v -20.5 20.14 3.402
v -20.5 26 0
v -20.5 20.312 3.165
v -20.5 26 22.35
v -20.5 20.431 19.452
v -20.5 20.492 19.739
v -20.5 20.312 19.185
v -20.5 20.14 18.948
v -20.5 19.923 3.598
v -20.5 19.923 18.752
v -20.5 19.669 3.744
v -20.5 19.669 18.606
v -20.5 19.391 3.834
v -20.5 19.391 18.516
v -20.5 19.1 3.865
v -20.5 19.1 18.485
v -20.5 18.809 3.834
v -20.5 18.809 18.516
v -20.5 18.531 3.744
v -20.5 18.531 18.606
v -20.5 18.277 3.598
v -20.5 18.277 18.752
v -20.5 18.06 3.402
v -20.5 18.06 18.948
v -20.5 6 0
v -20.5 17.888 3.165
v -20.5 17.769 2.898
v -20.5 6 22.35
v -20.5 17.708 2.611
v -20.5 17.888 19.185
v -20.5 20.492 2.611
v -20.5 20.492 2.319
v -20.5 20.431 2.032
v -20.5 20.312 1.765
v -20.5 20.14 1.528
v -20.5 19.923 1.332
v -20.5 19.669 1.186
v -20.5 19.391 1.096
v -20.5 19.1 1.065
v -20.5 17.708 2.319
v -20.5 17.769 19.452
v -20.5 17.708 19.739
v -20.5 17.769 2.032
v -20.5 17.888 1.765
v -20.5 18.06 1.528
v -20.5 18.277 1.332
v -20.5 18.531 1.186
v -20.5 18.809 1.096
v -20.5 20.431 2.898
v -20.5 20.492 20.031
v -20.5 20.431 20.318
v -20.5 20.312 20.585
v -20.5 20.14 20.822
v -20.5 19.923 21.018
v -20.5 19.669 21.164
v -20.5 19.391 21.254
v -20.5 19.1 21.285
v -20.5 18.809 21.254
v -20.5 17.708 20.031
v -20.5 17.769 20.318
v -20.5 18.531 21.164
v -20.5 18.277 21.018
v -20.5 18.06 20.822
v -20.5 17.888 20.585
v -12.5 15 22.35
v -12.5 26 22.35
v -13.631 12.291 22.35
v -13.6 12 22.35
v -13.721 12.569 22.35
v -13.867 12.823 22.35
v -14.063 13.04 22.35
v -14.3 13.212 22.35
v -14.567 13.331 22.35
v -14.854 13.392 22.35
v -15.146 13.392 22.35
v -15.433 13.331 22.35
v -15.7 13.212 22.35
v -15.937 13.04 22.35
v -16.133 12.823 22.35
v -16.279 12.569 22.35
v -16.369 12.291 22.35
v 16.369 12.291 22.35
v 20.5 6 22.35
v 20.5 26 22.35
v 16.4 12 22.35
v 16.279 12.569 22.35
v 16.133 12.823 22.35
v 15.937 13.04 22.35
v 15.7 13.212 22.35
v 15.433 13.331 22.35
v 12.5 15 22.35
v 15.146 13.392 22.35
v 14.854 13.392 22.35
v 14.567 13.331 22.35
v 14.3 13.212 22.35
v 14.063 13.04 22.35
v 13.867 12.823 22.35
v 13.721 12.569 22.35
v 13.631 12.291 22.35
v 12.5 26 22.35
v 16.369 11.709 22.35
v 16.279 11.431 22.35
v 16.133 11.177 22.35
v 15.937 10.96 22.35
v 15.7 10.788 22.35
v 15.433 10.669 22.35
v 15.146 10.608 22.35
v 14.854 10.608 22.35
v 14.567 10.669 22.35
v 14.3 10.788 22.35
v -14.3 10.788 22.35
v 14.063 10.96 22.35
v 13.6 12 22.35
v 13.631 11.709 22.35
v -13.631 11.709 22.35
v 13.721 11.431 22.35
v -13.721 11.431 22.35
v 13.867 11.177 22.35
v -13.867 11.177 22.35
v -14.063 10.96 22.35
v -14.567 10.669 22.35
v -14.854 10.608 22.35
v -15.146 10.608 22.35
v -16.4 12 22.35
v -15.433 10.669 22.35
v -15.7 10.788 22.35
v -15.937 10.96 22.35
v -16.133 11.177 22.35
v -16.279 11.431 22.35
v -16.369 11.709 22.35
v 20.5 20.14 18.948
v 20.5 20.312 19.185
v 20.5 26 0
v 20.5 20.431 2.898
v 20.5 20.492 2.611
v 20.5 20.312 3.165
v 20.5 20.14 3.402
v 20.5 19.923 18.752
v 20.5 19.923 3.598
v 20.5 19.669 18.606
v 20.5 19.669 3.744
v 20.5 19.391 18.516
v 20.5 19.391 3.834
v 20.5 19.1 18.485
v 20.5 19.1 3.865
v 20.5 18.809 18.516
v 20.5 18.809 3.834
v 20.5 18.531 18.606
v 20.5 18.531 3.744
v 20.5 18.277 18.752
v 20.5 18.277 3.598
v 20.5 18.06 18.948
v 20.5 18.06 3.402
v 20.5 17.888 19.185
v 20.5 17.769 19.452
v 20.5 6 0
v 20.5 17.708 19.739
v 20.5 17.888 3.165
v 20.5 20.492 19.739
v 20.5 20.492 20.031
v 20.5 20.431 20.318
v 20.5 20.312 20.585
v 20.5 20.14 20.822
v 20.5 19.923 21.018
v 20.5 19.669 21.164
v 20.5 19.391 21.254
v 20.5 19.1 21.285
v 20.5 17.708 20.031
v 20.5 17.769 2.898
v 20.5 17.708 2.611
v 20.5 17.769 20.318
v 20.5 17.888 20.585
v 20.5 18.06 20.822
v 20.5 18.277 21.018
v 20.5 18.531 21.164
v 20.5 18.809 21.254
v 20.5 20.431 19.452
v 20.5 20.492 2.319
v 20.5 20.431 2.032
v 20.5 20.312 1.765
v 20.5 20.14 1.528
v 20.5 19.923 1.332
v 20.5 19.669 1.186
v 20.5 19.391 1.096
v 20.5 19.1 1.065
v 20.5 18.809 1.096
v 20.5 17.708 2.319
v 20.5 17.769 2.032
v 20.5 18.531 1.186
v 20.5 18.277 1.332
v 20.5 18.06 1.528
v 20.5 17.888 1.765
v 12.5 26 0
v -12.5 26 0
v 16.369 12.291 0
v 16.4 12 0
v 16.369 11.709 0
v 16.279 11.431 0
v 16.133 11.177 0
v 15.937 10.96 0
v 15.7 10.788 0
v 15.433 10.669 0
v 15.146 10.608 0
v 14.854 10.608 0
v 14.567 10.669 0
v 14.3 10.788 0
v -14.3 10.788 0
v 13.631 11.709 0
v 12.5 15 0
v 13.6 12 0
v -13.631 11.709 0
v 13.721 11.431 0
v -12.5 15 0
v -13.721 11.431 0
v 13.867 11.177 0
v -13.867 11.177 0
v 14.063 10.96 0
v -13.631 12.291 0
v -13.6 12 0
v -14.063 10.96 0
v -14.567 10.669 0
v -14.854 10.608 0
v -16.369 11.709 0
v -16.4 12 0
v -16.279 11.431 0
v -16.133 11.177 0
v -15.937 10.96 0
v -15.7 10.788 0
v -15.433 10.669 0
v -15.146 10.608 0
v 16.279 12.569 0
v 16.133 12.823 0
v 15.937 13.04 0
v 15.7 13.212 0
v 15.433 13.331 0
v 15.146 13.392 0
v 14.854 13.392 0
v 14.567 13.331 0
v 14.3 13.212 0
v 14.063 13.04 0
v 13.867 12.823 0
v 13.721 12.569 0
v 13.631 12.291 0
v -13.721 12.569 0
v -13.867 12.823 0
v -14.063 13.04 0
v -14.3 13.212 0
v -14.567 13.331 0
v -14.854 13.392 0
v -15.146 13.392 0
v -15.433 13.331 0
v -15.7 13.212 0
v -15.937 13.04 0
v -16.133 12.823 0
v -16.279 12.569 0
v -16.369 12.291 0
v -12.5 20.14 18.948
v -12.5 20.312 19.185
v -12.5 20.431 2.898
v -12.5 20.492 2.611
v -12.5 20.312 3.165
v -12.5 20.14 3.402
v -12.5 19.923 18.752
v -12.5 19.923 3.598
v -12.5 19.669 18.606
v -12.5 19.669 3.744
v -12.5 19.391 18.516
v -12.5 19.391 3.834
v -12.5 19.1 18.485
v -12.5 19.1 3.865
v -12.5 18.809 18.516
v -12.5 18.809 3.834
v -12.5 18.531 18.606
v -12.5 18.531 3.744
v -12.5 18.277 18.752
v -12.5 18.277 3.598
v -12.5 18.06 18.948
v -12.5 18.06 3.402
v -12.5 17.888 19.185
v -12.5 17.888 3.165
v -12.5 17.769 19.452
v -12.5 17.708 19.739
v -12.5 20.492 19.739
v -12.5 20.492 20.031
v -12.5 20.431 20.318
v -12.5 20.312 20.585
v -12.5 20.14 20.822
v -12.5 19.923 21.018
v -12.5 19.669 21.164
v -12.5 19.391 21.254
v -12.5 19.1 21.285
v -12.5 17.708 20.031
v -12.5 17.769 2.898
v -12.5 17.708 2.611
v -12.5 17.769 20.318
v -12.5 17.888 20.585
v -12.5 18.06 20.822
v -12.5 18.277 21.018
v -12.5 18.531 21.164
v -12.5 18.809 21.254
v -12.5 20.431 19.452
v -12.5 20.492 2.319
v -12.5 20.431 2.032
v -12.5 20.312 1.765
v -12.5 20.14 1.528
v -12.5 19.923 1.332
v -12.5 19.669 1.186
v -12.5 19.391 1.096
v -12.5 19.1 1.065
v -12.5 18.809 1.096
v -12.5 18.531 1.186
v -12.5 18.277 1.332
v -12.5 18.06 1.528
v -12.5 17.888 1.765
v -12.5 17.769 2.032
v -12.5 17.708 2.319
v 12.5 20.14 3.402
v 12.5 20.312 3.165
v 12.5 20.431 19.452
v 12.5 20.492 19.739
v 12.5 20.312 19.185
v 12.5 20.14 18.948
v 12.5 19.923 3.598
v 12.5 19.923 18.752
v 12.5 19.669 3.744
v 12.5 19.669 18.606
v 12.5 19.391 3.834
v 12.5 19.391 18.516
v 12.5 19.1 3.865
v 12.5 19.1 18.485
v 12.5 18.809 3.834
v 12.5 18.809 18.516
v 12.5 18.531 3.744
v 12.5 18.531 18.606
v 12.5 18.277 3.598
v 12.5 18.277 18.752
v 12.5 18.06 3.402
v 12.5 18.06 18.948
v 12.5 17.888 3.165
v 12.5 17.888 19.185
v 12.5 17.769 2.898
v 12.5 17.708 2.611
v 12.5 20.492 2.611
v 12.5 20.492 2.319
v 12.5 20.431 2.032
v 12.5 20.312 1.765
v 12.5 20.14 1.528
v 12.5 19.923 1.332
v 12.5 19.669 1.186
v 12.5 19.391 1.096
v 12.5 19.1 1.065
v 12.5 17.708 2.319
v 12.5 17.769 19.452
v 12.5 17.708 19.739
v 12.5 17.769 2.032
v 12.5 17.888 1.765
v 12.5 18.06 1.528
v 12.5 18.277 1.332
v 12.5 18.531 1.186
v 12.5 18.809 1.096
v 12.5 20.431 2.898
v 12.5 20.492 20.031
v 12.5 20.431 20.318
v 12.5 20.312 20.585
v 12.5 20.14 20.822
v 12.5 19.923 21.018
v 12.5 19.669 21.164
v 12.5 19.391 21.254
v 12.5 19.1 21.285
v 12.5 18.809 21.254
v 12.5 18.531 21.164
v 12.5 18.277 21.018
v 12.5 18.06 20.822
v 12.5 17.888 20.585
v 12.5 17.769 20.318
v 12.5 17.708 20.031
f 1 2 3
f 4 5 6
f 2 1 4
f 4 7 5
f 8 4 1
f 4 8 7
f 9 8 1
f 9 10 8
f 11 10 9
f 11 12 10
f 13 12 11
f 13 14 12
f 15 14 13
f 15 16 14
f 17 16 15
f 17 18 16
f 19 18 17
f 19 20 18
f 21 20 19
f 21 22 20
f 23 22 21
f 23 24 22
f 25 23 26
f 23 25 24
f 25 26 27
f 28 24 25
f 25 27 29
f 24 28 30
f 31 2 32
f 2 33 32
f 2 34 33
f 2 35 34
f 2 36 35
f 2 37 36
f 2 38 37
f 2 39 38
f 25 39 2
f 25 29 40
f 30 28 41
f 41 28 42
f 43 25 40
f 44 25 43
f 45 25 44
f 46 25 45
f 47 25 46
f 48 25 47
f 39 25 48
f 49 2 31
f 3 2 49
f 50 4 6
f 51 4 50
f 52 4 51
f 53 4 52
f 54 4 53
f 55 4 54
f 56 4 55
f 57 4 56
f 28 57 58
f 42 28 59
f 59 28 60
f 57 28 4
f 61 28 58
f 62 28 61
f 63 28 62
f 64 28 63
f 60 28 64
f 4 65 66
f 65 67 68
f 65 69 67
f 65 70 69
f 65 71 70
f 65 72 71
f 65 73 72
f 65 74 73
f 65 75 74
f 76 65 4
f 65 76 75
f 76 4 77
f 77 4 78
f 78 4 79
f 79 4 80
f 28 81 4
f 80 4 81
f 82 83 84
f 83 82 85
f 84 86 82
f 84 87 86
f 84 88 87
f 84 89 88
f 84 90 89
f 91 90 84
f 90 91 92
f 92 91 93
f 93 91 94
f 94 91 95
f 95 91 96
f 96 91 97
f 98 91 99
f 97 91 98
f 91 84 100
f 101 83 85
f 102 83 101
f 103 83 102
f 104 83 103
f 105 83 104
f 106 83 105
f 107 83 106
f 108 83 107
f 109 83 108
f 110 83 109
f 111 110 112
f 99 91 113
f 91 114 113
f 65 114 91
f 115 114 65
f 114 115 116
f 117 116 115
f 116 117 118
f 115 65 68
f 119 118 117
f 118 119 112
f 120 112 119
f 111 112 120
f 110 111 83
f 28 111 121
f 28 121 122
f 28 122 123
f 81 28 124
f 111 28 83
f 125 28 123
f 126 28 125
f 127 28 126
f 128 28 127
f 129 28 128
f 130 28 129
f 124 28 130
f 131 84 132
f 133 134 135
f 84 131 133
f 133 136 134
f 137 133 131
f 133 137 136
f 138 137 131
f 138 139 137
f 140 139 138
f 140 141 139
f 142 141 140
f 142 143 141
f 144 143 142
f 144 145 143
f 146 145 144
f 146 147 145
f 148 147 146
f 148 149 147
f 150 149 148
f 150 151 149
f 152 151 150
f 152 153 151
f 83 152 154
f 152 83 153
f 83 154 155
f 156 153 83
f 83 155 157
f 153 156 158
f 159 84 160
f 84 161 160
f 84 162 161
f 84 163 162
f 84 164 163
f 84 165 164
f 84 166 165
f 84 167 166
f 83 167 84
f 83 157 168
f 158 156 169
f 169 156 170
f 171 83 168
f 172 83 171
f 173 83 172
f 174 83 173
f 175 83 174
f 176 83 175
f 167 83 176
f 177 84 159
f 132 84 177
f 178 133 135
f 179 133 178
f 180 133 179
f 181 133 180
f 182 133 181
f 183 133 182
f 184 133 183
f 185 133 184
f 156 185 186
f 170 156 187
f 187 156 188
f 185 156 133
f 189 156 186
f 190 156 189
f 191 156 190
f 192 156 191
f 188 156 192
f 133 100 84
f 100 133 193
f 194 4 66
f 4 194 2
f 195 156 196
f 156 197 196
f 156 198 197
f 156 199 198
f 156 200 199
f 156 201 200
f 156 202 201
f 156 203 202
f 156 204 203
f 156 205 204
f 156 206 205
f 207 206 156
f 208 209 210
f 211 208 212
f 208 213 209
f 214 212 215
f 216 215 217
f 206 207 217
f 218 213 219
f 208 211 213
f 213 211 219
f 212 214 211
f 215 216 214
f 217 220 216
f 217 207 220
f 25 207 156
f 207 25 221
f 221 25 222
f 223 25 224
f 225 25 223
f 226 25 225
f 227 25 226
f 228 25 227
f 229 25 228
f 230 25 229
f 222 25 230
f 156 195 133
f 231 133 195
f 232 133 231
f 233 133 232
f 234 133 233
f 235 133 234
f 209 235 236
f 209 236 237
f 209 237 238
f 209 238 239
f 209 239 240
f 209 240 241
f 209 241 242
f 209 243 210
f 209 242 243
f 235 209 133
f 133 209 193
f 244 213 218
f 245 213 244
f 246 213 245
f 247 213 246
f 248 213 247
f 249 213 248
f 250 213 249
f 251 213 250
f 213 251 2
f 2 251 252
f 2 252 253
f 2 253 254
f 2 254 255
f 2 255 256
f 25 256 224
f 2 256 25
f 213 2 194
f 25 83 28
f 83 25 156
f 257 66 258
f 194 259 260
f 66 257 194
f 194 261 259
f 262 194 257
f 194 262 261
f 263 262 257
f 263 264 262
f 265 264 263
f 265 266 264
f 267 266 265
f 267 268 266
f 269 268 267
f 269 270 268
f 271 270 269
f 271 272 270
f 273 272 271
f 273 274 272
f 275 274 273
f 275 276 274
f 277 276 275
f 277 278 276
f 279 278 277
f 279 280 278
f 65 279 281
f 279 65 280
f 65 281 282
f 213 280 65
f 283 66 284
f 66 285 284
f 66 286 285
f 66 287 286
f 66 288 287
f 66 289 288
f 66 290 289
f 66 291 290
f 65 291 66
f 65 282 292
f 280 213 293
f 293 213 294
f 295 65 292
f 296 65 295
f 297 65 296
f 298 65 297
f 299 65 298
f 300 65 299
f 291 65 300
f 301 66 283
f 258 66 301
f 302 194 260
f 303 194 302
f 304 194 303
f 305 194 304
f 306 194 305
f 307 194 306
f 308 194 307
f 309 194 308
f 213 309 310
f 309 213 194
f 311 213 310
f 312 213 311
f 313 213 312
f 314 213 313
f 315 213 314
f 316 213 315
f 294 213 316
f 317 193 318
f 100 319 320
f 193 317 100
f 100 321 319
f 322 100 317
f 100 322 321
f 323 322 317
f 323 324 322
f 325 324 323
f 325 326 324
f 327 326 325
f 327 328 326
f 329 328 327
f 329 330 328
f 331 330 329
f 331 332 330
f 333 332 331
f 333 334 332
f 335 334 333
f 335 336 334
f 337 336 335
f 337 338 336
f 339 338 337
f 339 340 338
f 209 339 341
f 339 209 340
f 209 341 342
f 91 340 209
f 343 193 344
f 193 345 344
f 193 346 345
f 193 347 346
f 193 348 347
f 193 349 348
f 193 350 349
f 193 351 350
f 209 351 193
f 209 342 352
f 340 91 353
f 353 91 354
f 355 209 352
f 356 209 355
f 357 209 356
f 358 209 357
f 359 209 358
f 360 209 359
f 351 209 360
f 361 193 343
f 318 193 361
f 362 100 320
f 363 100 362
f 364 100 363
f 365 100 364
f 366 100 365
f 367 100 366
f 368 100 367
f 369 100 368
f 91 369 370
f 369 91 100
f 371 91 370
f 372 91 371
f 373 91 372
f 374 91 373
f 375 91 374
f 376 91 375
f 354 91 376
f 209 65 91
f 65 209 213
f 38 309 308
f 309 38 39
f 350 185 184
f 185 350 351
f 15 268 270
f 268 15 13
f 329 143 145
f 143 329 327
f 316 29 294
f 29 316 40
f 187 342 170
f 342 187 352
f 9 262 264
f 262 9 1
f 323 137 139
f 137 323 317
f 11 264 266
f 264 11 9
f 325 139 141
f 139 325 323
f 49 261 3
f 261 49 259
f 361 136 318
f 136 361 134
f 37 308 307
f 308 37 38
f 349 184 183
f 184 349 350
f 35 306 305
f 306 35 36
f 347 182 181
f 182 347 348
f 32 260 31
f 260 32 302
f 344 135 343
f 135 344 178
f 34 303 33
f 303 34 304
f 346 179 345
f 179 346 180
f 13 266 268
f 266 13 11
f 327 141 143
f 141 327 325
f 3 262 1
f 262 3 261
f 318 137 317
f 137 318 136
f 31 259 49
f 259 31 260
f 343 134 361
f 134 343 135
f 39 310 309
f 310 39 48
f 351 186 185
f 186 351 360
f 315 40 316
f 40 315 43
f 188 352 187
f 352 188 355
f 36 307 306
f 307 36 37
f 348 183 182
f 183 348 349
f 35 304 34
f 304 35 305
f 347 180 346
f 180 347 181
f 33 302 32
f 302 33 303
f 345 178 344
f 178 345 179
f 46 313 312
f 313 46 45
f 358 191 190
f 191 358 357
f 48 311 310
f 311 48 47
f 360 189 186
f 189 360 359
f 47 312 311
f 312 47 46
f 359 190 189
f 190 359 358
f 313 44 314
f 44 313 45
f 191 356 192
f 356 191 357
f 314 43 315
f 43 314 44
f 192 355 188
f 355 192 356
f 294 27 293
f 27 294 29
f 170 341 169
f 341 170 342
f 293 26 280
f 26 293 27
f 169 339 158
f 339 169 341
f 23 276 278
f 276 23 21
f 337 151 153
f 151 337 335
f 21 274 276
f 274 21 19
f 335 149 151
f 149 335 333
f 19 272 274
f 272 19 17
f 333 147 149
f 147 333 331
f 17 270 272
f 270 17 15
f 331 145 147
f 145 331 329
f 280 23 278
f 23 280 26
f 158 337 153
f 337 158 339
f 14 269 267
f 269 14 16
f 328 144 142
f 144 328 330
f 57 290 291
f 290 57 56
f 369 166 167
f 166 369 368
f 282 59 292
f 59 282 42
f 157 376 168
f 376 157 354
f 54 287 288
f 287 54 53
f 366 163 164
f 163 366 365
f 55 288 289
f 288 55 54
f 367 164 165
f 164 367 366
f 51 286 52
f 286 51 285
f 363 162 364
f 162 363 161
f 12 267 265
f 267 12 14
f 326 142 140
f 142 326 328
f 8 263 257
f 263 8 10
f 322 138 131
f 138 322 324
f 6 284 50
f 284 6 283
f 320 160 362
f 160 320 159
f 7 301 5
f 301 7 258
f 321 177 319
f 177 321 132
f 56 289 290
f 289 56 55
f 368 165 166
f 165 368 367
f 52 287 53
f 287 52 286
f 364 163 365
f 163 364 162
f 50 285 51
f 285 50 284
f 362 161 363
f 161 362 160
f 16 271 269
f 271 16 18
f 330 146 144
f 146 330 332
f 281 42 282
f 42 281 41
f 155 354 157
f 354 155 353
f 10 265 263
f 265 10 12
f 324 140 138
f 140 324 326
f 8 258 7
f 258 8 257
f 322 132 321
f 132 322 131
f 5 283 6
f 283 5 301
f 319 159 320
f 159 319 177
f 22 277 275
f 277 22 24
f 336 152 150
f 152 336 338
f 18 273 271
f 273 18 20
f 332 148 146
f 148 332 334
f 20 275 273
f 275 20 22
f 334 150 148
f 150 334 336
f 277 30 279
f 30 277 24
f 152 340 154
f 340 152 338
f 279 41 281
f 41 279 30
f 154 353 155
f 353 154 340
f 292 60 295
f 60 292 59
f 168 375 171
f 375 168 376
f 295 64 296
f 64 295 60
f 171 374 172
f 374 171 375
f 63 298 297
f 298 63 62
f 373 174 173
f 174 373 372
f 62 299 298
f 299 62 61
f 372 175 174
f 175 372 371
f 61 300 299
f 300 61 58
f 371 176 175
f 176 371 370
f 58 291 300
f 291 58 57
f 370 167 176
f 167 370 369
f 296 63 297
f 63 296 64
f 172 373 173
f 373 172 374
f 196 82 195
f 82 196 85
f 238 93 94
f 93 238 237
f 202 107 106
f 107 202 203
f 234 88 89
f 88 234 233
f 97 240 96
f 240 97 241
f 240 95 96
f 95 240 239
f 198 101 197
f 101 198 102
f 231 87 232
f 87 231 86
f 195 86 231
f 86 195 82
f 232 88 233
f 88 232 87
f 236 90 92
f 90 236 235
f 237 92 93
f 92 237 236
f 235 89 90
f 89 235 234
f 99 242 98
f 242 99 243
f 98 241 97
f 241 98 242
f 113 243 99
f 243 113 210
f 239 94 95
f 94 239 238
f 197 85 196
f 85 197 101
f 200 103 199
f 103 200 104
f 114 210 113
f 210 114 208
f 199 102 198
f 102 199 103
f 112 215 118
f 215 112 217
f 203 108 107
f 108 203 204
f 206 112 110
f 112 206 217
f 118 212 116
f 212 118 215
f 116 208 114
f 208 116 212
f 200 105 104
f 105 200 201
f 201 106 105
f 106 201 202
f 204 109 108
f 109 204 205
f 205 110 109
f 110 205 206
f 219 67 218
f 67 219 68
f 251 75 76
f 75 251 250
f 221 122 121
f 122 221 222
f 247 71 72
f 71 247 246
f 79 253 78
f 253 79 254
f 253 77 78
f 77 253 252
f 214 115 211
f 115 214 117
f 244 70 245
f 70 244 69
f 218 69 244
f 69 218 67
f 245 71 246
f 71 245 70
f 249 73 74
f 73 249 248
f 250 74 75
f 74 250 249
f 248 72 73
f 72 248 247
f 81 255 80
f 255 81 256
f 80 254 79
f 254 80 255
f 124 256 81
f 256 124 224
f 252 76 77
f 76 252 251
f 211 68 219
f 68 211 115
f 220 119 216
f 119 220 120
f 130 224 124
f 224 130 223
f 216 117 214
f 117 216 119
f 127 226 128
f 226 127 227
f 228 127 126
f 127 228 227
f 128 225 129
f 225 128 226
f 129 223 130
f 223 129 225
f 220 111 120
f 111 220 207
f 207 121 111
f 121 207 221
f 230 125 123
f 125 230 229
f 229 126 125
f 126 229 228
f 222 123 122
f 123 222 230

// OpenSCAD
$fn=30;

difference(){
translate([-20.5,6,0])cube([41,20,22.35]);
translate([-12.5,15,-10])cube([25,12,50]);
translate([0,19.1,2.465])rotate([0,90,0])
cylinder(d=2.8,h=50,center=true,$fn=30);
translate([0,19.1,19.885])rotate([0,90,0])
cylinder(d=2.8,h=50,center=true,$fn=30);
translate([15,12,0])cylinder(d=2.8,h=30);    
translate([-15,12,0])cylinder(d=2.8,h=30);    
}
